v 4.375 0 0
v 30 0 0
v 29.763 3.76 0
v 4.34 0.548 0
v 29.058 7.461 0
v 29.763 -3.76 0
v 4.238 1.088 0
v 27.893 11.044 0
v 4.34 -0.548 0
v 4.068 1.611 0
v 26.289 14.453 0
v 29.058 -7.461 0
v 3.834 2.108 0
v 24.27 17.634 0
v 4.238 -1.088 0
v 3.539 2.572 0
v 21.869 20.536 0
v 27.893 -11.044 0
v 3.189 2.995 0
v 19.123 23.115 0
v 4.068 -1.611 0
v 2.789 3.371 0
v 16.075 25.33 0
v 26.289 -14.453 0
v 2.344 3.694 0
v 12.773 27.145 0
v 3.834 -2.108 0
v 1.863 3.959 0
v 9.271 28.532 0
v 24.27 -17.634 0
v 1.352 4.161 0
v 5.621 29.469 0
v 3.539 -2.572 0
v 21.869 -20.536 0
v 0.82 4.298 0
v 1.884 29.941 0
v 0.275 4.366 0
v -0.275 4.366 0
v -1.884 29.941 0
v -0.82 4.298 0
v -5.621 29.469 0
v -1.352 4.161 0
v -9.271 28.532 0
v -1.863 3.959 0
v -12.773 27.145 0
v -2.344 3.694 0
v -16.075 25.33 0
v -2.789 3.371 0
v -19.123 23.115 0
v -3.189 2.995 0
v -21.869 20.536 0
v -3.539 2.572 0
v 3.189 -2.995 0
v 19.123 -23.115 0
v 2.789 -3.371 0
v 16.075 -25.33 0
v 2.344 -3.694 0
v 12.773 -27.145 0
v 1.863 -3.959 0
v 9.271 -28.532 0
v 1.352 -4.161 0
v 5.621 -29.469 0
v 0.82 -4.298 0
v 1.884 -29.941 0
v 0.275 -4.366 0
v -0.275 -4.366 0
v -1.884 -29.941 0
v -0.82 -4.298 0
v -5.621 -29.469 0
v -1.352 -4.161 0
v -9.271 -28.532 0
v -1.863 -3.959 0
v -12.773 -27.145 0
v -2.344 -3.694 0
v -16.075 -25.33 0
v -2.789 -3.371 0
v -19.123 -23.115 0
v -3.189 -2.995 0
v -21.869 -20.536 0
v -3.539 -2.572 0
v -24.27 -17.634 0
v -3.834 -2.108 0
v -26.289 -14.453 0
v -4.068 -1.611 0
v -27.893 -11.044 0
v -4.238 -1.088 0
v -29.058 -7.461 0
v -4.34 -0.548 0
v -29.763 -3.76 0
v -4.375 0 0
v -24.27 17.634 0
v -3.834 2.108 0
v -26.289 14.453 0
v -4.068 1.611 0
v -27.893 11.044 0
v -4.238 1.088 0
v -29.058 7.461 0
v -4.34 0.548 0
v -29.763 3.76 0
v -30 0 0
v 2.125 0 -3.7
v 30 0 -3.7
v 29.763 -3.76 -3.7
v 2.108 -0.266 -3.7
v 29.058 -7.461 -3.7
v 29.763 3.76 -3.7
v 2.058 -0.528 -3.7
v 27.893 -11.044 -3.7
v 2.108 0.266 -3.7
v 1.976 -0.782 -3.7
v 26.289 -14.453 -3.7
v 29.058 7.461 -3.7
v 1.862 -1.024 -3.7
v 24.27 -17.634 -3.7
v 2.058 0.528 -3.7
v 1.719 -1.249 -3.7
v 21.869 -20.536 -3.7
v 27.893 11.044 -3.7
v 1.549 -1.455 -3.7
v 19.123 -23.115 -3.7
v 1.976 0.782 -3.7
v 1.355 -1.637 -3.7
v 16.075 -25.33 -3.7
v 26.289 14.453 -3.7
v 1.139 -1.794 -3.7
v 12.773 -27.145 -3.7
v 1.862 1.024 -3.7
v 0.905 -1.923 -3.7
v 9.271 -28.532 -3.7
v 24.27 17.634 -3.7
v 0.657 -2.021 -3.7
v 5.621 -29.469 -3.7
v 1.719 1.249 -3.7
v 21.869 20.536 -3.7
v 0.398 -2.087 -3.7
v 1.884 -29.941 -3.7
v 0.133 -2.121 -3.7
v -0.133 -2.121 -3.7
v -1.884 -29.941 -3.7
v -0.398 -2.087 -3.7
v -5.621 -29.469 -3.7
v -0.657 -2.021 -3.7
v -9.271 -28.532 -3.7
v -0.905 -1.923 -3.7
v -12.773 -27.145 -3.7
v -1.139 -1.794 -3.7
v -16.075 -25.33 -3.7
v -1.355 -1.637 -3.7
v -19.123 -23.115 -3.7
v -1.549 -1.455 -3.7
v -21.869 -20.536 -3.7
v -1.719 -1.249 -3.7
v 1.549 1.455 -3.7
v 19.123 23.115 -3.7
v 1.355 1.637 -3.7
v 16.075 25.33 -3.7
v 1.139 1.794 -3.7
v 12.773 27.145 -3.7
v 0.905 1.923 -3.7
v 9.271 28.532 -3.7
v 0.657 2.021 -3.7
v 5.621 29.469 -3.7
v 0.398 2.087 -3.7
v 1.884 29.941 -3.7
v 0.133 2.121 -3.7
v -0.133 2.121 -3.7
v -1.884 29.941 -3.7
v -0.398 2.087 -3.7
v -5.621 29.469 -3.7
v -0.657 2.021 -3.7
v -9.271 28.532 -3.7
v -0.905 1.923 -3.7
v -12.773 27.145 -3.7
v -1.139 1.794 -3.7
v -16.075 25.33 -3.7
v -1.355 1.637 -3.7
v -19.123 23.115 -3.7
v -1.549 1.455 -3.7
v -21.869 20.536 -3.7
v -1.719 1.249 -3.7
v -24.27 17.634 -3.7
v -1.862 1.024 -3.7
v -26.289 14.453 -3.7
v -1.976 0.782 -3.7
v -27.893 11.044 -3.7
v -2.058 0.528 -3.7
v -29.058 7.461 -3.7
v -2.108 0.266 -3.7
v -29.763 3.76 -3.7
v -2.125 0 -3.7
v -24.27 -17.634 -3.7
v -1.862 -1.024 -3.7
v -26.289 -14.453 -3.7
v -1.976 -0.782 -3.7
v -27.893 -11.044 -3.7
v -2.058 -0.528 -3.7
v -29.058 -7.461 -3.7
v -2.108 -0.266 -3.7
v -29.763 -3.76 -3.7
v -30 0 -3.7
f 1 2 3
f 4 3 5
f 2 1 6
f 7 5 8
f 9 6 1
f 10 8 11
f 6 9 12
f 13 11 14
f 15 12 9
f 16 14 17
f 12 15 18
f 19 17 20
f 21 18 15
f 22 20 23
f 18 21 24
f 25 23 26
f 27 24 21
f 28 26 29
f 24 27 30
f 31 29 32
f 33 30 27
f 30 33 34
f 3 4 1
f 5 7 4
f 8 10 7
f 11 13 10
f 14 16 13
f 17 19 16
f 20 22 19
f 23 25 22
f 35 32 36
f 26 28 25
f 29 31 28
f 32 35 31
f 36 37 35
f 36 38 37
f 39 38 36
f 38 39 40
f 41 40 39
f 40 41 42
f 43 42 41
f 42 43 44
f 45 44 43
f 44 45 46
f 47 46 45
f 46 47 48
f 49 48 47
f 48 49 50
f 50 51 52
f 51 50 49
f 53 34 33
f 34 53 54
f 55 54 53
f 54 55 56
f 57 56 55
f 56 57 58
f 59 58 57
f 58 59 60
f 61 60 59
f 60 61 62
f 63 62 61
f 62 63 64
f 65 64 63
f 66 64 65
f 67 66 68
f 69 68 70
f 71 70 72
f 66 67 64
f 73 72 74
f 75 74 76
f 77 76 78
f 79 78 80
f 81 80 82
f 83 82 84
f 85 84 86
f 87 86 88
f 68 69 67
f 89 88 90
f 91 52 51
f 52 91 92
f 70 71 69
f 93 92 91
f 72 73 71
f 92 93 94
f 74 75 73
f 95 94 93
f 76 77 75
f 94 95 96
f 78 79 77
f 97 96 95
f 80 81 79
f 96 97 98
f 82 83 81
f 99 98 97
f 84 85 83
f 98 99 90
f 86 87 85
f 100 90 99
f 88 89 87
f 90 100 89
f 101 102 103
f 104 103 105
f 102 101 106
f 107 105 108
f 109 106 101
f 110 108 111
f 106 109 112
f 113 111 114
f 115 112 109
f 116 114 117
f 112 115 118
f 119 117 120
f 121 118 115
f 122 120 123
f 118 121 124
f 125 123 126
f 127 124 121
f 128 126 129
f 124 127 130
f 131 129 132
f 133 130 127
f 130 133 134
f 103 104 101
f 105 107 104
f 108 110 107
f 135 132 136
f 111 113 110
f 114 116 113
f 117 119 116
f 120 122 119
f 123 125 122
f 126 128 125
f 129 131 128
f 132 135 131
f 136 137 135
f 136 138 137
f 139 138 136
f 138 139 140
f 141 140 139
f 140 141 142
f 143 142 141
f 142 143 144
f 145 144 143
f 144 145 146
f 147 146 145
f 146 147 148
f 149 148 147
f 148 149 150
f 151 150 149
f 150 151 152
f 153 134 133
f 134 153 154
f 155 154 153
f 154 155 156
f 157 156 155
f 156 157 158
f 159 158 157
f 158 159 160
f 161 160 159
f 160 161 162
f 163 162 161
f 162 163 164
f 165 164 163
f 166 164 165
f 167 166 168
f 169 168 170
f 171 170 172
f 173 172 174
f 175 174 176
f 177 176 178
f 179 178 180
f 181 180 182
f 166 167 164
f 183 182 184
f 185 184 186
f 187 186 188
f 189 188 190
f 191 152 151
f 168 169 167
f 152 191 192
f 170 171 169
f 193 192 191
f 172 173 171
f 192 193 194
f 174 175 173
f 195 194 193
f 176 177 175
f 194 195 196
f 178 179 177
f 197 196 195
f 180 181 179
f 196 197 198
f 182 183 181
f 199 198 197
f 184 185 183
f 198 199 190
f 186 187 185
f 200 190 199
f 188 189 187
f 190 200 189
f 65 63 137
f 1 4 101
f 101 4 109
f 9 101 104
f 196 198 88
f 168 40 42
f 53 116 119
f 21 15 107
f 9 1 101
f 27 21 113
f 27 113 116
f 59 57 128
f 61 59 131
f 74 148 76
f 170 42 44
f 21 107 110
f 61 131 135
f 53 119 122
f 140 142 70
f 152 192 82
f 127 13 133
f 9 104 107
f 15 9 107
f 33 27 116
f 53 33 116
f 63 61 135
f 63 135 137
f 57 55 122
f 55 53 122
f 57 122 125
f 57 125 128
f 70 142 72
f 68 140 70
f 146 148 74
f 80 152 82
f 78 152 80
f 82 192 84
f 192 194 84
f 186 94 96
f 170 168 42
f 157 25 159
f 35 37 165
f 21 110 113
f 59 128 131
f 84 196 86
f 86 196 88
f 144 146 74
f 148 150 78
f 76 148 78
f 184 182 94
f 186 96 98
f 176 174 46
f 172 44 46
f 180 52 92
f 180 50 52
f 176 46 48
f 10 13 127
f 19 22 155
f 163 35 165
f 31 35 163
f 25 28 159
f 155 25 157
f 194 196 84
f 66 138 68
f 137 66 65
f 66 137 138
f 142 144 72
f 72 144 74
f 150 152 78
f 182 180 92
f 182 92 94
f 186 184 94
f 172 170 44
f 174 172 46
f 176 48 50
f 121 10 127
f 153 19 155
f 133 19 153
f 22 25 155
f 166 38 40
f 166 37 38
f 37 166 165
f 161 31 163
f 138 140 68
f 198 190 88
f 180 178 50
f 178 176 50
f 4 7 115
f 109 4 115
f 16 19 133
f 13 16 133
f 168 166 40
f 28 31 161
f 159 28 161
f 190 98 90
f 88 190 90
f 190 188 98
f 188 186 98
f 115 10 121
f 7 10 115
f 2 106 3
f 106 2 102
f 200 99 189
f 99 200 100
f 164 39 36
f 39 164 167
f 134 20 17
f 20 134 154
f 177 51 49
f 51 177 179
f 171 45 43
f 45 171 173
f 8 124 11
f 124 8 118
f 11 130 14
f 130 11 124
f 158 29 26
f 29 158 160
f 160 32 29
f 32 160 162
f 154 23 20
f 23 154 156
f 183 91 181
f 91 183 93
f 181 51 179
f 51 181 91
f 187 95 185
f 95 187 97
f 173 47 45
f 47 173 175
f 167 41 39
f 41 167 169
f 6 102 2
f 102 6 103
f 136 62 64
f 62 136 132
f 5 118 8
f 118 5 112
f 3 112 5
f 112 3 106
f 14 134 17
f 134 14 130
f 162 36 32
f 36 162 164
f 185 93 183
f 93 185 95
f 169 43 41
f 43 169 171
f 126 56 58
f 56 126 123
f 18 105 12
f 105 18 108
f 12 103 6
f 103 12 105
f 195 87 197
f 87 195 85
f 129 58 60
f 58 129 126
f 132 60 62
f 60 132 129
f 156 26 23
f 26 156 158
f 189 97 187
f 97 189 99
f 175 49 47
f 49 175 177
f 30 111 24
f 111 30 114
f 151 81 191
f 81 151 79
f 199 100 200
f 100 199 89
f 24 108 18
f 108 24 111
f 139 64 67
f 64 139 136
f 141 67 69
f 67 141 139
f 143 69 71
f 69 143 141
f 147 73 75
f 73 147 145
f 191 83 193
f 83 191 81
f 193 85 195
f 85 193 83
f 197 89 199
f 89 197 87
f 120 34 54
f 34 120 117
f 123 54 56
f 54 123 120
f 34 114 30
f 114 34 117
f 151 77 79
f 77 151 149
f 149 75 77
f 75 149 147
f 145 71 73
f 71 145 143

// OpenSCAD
$fn = 50;


difference() {
	union() {
		translate(v = [0, 0, -3.7000000000]) {
			cylinder(h = 3.7000000000, r = 30.0000000000);
		}
	}
	union() {
		translate(v = [0, 0, 0]) {
			rotate(a = [0, 0, 0]) {
				difference() {
					union() {
						#translate(v = [0, 0, -3.7000000000]) {
							cylinder(h = 3.7000000000, r = 2.0000000000);
						}
						#translate(v = [0, 0, -3.7000000000]) {
							cylinder(h = 3.7000000000, r1 = 2.1250000000, r2 = 4.3750000000);
						}
						#translate(v = [0, 0, -3.7000000000]) {
							cylinder(h = 3.7000000000, r = 2.1250000000);
						}
						#translate(v = [0, 0, -3.7000000000]) {
							cylinder(h = 3.7000000000, r = 2.0000000000);
						}
					}
					union();
				}
			}
		}
	}
}
